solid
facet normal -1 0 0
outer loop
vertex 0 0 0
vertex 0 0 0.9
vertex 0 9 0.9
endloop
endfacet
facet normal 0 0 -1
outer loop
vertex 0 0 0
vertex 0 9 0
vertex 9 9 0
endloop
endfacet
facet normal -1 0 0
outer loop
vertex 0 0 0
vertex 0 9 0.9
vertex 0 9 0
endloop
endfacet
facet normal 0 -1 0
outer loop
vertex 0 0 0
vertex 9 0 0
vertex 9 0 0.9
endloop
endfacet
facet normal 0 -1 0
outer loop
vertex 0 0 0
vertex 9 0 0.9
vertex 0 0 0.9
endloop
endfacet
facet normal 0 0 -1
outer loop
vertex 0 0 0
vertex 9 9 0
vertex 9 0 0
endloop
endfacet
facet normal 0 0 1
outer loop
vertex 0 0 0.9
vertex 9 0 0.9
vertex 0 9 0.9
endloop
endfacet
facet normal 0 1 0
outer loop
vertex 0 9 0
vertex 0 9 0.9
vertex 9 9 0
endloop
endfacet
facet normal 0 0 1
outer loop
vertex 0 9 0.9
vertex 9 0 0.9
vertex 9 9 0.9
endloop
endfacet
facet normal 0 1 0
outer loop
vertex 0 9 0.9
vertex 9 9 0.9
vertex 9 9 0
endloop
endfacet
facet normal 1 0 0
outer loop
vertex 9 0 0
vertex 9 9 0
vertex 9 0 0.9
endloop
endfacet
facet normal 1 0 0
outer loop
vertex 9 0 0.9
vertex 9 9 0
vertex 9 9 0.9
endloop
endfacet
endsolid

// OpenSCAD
/* Warning, this is a very basic generator with a lot of approximation 
input data : [VQFN, U6B, 9x9x0.9mm, 64, , A, C04-21497A]
generated by com.zoubworld.electronics.cad.model3d.Basic
Date : Sun Feb 15 10:50:49 CET 2026
*/

//body
color("black")
translate([0,0,0])
cube([9.0,9.0,0.9], center=false);
